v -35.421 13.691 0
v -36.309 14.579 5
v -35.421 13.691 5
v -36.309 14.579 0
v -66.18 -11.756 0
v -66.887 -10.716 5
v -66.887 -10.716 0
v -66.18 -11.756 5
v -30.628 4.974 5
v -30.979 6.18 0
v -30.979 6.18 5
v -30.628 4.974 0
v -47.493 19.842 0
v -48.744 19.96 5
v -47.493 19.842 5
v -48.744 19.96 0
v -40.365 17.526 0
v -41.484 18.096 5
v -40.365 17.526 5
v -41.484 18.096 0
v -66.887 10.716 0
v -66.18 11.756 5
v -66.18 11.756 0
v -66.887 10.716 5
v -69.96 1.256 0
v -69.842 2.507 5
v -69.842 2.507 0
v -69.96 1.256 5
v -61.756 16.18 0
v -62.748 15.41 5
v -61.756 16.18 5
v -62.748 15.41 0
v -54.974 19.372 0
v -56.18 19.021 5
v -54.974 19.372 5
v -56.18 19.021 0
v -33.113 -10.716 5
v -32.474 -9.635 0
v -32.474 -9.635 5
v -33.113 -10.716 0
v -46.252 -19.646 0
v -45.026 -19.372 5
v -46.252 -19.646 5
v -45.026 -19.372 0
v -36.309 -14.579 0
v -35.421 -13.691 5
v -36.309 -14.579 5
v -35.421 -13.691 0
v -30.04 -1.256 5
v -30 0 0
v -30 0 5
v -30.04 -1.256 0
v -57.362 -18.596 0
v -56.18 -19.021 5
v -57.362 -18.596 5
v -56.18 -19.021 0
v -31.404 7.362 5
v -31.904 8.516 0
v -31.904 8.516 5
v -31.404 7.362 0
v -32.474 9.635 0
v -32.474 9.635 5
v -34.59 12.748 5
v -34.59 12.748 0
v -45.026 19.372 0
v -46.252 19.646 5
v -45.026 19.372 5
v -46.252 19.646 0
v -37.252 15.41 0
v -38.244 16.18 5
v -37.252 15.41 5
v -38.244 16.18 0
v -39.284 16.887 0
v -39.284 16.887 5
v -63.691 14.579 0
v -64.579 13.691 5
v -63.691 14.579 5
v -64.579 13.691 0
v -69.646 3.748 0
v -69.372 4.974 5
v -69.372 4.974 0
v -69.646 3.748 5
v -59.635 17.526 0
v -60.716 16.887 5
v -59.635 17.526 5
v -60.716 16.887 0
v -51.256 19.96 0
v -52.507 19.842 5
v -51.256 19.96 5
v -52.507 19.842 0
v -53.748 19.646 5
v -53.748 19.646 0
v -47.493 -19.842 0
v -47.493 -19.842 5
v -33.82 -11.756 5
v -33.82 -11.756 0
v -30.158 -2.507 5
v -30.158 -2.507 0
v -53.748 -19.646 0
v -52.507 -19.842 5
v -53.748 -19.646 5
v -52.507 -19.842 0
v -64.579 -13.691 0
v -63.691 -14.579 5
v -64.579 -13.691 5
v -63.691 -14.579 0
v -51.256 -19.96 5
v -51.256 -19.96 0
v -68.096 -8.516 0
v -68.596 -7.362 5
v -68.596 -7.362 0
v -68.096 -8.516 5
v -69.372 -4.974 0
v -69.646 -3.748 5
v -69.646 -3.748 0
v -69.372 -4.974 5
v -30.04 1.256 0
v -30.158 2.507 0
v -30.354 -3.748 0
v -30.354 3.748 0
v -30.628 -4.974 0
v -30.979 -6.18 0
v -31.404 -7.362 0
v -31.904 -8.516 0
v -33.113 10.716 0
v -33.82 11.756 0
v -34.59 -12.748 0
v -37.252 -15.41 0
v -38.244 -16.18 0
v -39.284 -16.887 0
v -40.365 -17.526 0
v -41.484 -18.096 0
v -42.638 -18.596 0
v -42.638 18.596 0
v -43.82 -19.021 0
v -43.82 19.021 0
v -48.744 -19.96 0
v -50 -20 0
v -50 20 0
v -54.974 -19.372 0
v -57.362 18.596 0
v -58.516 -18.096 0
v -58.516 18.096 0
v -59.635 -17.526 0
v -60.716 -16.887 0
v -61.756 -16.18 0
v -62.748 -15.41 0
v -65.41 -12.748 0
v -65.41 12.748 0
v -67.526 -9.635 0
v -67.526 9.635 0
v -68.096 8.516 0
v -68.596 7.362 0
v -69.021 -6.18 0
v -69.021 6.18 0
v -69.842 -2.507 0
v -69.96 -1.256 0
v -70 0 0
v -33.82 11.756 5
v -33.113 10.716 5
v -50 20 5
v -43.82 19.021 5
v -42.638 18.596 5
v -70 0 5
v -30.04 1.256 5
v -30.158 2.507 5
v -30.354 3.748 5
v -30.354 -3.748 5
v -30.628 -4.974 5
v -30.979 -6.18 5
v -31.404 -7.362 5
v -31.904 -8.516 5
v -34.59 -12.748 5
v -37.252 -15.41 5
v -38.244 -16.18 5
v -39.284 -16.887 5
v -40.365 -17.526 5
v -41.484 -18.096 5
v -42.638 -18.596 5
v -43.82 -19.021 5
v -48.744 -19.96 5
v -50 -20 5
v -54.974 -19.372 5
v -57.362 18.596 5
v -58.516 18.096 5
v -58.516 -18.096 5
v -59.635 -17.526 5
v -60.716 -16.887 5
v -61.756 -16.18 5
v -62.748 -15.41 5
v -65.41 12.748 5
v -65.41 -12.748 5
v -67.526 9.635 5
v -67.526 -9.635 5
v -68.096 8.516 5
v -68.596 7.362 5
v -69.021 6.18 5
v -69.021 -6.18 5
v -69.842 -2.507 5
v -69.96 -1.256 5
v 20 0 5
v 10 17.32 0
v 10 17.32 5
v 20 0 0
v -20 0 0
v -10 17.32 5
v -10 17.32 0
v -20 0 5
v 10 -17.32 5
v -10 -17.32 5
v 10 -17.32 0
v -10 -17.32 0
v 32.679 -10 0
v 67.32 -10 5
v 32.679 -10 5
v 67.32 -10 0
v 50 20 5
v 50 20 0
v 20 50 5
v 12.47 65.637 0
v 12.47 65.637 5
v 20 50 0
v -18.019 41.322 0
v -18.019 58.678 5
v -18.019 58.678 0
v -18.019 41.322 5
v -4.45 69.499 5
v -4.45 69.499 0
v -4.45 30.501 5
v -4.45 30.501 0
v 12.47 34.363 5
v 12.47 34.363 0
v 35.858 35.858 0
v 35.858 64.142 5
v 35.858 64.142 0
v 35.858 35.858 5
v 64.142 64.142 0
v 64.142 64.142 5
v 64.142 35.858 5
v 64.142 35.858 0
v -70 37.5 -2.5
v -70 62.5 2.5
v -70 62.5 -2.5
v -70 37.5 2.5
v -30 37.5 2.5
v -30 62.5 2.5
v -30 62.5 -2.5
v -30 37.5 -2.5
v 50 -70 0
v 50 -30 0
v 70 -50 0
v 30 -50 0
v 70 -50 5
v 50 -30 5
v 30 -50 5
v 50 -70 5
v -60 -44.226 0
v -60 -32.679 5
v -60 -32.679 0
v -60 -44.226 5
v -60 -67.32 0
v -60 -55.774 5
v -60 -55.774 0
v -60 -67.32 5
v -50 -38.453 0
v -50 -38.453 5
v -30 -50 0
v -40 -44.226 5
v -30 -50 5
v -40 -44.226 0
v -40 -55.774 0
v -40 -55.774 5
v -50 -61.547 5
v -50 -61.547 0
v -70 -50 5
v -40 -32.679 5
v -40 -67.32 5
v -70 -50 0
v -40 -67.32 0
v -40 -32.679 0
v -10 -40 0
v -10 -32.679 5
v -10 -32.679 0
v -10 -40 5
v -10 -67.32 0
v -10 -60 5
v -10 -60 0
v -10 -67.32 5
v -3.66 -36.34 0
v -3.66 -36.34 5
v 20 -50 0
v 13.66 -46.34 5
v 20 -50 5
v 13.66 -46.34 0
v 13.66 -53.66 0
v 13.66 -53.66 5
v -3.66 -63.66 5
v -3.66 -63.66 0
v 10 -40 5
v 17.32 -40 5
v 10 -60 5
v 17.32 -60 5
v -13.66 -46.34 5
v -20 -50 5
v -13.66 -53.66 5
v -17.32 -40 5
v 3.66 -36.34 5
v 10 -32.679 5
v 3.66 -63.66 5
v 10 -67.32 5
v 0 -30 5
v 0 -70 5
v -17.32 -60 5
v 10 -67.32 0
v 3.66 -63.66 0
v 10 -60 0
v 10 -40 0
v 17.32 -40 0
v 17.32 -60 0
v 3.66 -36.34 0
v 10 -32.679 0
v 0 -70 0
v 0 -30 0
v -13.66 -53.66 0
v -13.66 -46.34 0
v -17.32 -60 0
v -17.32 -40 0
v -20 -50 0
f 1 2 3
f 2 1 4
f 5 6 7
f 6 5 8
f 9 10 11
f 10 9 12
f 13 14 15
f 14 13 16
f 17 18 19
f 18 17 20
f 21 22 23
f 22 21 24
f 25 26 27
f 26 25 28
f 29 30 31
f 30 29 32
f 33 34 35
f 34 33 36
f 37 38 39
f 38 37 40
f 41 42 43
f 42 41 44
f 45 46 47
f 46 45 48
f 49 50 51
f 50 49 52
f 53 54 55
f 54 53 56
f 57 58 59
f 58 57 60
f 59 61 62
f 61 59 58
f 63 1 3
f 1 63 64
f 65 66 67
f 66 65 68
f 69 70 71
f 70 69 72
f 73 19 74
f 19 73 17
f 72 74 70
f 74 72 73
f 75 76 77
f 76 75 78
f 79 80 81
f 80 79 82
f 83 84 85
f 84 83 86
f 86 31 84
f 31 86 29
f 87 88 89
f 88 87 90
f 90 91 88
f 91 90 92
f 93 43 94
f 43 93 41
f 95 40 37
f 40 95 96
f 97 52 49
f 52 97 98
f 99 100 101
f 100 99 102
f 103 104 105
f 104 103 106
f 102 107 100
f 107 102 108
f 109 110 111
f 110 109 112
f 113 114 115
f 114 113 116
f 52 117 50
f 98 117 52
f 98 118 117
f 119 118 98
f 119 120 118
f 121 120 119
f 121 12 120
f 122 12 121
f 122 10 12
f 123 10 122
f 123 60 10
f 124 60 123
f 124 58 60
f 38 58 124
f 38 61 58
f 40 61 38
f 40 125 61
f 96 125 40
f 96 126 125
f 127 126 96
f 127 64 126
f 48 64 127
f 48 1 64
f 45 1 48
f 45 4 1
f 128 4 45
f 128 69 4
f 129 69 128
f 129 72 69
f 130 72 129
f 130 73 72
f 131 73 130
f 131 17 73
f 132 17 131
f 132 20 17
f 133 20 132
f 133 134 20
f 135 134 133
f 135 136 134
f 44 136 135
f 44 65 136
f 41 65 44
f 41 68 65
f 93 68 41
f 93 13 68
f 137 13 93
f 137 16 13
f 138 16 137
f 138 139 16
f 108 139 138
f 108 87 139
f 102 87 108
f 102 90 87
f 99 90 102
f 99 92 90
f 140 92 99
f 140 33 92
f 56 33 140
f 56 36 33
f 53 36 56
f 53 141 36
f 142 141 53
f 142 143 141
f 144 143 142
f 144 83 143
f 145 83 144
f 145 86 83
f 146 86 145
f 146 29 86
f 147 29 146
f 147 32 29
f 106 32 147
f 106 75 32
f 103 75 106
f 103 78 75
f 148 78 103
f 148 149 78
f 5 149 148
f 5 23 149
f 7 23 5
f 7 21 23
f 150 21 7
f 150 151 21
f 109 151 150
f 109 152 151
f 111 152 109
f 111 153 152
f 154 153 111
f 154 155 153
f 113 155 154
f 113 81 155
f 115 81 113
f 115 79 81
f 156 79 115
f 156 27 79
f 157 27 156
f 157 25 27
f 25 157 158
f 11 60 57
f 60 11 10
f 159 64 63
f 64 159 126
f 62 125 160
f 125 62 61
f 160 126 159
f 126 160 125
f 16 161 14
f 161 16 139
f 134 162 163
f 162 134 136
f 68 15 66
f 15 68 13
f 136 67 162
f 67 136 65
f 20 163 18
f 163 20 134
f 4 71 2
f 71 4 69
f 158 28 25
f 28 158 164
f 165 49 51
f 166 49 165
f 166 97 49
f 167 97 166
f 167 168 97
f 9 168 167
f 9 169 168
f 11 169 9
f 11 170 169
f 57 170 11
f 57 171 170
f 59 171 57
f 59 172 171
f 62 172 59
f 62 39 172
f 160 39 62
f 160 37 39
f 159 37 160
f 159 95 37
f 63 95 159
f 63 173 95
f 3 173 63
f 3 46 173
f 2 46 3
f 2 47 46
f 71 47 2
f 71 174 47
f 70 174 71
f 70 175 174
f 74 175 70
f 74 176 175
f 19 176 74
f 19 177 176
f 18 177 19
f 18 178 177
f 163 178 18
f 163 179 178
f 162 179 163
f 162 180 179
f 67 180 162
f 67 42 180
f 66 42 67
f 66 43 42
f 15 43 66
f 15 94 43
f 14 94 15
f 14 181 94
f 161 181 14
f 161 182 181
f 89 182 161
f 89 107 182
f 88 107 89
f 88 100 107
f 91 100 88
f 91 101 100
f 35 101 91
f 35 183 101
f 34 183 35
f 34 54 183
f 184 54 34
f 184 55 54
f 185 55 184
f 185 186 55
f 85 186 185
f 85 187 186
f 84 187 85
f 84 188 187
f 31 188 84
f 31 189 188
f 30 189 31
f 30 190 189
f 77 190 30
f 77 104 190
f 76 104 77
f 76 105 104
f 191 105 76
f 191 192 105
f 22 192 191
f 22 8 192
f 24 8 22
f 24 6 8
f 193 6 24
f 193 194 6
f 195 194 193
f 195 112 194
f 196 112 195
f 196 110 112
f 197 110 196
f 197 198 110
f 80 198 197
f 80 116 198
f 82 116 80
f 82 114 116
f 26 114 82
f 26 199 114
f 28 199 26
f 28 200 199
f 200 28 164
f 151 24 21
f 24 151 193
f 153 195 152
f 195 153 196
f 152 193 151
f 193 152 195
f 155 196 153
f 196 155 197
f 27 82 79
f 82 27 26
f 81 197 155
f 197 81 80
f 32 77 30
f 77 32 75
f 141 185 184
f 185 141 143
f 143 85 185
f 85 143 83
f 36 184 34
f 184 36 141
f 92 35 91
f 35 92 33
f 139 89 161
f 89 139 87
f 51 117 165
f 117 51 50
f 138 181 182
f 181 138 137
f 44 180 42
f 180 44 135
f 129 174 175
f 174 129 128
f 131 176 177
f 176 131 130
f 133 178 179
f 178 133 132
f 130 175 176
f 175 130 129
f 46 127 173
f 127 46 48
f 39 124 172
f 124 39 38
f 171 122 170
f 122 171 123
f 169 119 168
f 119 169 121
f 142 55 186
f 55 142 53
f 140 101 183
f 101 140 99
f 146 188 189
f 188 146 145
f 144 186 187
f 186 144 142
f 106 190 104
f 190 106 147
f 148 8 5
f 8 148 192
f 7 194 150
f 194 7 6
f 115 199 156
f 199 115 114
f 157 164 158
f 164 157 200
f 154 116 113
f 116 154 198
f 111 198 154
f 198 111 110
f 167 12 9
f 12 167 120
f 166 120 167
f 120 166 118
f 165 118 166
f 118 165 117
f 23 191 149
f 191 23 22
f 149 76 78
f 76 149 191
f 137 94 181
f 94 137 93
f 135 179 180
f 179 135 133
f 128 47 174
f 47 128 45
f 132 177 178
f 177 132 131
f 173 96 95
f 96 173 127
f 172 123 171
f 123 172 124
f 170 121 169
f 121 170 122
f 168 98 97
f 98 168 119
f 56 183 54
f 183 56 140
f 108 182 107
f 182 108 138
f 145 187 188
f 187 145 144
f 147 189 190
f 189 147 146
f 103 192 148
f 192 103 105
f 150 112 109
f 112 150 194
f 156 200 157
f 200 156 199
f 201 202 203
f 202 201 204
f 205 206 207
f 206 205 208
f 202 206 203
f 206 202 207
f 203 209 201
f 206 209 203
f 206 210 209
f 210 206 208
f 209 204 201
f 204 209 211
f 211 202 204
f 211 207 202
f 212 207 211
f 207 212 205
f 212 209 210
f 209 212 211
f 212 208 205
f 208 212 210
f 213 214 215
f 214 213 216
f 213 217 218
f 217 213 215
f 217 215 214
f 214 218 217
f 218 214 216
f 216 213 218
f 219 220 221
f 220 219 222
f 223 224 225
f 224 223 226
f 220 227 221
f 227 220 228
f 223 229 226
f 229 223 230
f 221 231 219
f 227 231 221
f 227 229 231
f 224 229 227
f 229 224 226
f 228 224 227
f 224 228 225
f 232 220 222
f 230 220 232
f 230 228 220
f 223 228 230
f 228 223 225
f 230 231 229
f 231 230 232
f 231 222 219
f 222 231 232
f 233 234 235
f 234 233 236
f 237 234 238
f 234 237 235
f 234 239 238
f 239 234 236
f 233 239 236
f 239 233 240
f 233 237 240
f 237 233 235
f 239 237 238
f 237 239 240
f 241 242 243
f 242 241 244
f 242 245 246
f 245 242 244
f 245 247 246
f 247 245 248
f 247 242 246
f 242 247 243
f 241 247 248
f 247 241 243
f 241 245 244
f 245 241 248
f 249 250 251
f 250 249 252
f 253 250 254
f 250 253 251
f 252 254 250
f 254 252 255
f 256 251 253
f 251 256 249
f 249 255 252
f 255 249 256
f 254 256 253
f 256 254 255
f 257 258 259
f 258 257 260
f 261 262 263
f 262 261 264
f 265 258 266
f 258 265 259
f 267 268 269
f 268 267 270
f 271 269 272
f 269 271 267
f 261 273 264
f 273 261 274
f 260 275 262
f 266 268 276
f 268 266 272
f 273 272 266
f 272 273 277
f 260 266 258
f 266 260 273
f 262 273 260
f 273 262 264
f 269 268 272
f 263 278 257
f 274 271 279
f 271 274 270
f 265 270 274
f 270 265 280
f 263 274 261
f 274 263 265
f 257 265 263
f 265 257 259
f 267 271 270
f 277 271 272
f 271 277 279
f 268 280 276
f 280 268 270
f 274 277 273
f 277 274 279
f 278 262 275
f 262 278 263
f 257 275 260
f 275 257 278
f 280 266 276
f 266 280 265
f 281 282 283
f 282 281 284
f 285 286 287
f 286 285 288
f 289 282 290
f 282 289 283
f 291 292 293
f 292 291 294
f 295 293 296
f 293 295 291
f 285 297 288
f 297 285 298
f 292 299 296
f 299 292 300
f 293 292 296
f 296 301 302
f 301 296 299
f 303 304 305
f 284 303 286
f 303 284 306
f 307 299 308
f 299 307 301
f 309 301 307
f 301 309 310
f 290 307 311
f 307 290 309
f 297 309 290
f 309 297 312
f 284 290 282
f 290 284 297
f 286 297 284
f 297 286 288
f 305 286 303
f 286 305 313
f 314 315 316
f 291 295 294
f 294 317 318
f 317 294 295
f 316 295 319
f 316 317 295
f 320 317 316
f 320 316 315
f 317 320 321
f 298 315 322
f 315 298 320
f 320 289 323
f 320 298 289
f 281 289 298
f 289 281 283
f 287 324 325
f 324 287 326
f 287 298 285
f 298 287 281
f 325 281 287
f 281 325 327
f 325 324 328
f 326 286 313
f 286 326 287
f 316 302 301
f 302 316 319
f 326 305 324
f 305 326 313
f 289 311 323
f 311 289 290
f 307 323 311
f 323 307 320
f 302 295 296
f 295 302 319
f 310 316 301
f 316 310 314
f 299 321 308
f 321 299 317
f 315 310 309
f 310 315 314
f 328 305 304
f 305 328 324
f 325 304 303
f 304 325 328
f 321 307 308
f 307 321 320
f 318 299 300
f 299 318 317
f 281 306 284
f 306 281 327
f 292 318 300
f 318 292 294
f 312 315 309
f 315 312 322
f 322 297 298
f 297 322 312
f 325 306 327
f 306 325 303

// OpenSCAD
//--Moneda
translate([-50,0,0])
  cylinder (r=40/2, h=5, $fn=100);
  
//--hexagono
cylinder (r=40/2, h=5, $fn=6);

//--triangulo
translate([50,0,0])
  rotate([0,0,90])
    cylinder (r=40/2, h=5, $fn=3);
  
//--heptagono
translate([0,50,0])
  cylinder (r=40/2, h=5, $fn=7);
  
//--cuadrado
translate([50,50,0])
  rotate([0,0,45])
    cylinder (r=40/2, h=5, $fn=4);
    
//rectangulo
translate([-50,50,0])
    cube([40,25,5],center=true);
    
//rombo
translate([50,-50,0])
  cylinder (r=40/2, h=5, $fn=4);
  
  
//--estrella
translate([-50,-50,0])
  cylinder (r=40/2, h=5, $fn=3);
translate([-50,-50,0])
  rotate([0,0,180])
    cylinder (r=40/2, h=5, $fn=3);
    
//--estrella
translate([0,-50,0])
  cylinder (r=40/2, h=5, $fn=3);
translate([0,-50,0])
  rotate([0,0,90])
    cylinder (r=40/2, h=5, $fn=3);
translate([0,-50,0])
  rotate([0,0,180])
    cylinder (r=40/2, h=5, $fn=3);
translate([0,-50,0])
  rotate([0,0,270])
    cylinder (r=40/2, h=5, $fn=3);
